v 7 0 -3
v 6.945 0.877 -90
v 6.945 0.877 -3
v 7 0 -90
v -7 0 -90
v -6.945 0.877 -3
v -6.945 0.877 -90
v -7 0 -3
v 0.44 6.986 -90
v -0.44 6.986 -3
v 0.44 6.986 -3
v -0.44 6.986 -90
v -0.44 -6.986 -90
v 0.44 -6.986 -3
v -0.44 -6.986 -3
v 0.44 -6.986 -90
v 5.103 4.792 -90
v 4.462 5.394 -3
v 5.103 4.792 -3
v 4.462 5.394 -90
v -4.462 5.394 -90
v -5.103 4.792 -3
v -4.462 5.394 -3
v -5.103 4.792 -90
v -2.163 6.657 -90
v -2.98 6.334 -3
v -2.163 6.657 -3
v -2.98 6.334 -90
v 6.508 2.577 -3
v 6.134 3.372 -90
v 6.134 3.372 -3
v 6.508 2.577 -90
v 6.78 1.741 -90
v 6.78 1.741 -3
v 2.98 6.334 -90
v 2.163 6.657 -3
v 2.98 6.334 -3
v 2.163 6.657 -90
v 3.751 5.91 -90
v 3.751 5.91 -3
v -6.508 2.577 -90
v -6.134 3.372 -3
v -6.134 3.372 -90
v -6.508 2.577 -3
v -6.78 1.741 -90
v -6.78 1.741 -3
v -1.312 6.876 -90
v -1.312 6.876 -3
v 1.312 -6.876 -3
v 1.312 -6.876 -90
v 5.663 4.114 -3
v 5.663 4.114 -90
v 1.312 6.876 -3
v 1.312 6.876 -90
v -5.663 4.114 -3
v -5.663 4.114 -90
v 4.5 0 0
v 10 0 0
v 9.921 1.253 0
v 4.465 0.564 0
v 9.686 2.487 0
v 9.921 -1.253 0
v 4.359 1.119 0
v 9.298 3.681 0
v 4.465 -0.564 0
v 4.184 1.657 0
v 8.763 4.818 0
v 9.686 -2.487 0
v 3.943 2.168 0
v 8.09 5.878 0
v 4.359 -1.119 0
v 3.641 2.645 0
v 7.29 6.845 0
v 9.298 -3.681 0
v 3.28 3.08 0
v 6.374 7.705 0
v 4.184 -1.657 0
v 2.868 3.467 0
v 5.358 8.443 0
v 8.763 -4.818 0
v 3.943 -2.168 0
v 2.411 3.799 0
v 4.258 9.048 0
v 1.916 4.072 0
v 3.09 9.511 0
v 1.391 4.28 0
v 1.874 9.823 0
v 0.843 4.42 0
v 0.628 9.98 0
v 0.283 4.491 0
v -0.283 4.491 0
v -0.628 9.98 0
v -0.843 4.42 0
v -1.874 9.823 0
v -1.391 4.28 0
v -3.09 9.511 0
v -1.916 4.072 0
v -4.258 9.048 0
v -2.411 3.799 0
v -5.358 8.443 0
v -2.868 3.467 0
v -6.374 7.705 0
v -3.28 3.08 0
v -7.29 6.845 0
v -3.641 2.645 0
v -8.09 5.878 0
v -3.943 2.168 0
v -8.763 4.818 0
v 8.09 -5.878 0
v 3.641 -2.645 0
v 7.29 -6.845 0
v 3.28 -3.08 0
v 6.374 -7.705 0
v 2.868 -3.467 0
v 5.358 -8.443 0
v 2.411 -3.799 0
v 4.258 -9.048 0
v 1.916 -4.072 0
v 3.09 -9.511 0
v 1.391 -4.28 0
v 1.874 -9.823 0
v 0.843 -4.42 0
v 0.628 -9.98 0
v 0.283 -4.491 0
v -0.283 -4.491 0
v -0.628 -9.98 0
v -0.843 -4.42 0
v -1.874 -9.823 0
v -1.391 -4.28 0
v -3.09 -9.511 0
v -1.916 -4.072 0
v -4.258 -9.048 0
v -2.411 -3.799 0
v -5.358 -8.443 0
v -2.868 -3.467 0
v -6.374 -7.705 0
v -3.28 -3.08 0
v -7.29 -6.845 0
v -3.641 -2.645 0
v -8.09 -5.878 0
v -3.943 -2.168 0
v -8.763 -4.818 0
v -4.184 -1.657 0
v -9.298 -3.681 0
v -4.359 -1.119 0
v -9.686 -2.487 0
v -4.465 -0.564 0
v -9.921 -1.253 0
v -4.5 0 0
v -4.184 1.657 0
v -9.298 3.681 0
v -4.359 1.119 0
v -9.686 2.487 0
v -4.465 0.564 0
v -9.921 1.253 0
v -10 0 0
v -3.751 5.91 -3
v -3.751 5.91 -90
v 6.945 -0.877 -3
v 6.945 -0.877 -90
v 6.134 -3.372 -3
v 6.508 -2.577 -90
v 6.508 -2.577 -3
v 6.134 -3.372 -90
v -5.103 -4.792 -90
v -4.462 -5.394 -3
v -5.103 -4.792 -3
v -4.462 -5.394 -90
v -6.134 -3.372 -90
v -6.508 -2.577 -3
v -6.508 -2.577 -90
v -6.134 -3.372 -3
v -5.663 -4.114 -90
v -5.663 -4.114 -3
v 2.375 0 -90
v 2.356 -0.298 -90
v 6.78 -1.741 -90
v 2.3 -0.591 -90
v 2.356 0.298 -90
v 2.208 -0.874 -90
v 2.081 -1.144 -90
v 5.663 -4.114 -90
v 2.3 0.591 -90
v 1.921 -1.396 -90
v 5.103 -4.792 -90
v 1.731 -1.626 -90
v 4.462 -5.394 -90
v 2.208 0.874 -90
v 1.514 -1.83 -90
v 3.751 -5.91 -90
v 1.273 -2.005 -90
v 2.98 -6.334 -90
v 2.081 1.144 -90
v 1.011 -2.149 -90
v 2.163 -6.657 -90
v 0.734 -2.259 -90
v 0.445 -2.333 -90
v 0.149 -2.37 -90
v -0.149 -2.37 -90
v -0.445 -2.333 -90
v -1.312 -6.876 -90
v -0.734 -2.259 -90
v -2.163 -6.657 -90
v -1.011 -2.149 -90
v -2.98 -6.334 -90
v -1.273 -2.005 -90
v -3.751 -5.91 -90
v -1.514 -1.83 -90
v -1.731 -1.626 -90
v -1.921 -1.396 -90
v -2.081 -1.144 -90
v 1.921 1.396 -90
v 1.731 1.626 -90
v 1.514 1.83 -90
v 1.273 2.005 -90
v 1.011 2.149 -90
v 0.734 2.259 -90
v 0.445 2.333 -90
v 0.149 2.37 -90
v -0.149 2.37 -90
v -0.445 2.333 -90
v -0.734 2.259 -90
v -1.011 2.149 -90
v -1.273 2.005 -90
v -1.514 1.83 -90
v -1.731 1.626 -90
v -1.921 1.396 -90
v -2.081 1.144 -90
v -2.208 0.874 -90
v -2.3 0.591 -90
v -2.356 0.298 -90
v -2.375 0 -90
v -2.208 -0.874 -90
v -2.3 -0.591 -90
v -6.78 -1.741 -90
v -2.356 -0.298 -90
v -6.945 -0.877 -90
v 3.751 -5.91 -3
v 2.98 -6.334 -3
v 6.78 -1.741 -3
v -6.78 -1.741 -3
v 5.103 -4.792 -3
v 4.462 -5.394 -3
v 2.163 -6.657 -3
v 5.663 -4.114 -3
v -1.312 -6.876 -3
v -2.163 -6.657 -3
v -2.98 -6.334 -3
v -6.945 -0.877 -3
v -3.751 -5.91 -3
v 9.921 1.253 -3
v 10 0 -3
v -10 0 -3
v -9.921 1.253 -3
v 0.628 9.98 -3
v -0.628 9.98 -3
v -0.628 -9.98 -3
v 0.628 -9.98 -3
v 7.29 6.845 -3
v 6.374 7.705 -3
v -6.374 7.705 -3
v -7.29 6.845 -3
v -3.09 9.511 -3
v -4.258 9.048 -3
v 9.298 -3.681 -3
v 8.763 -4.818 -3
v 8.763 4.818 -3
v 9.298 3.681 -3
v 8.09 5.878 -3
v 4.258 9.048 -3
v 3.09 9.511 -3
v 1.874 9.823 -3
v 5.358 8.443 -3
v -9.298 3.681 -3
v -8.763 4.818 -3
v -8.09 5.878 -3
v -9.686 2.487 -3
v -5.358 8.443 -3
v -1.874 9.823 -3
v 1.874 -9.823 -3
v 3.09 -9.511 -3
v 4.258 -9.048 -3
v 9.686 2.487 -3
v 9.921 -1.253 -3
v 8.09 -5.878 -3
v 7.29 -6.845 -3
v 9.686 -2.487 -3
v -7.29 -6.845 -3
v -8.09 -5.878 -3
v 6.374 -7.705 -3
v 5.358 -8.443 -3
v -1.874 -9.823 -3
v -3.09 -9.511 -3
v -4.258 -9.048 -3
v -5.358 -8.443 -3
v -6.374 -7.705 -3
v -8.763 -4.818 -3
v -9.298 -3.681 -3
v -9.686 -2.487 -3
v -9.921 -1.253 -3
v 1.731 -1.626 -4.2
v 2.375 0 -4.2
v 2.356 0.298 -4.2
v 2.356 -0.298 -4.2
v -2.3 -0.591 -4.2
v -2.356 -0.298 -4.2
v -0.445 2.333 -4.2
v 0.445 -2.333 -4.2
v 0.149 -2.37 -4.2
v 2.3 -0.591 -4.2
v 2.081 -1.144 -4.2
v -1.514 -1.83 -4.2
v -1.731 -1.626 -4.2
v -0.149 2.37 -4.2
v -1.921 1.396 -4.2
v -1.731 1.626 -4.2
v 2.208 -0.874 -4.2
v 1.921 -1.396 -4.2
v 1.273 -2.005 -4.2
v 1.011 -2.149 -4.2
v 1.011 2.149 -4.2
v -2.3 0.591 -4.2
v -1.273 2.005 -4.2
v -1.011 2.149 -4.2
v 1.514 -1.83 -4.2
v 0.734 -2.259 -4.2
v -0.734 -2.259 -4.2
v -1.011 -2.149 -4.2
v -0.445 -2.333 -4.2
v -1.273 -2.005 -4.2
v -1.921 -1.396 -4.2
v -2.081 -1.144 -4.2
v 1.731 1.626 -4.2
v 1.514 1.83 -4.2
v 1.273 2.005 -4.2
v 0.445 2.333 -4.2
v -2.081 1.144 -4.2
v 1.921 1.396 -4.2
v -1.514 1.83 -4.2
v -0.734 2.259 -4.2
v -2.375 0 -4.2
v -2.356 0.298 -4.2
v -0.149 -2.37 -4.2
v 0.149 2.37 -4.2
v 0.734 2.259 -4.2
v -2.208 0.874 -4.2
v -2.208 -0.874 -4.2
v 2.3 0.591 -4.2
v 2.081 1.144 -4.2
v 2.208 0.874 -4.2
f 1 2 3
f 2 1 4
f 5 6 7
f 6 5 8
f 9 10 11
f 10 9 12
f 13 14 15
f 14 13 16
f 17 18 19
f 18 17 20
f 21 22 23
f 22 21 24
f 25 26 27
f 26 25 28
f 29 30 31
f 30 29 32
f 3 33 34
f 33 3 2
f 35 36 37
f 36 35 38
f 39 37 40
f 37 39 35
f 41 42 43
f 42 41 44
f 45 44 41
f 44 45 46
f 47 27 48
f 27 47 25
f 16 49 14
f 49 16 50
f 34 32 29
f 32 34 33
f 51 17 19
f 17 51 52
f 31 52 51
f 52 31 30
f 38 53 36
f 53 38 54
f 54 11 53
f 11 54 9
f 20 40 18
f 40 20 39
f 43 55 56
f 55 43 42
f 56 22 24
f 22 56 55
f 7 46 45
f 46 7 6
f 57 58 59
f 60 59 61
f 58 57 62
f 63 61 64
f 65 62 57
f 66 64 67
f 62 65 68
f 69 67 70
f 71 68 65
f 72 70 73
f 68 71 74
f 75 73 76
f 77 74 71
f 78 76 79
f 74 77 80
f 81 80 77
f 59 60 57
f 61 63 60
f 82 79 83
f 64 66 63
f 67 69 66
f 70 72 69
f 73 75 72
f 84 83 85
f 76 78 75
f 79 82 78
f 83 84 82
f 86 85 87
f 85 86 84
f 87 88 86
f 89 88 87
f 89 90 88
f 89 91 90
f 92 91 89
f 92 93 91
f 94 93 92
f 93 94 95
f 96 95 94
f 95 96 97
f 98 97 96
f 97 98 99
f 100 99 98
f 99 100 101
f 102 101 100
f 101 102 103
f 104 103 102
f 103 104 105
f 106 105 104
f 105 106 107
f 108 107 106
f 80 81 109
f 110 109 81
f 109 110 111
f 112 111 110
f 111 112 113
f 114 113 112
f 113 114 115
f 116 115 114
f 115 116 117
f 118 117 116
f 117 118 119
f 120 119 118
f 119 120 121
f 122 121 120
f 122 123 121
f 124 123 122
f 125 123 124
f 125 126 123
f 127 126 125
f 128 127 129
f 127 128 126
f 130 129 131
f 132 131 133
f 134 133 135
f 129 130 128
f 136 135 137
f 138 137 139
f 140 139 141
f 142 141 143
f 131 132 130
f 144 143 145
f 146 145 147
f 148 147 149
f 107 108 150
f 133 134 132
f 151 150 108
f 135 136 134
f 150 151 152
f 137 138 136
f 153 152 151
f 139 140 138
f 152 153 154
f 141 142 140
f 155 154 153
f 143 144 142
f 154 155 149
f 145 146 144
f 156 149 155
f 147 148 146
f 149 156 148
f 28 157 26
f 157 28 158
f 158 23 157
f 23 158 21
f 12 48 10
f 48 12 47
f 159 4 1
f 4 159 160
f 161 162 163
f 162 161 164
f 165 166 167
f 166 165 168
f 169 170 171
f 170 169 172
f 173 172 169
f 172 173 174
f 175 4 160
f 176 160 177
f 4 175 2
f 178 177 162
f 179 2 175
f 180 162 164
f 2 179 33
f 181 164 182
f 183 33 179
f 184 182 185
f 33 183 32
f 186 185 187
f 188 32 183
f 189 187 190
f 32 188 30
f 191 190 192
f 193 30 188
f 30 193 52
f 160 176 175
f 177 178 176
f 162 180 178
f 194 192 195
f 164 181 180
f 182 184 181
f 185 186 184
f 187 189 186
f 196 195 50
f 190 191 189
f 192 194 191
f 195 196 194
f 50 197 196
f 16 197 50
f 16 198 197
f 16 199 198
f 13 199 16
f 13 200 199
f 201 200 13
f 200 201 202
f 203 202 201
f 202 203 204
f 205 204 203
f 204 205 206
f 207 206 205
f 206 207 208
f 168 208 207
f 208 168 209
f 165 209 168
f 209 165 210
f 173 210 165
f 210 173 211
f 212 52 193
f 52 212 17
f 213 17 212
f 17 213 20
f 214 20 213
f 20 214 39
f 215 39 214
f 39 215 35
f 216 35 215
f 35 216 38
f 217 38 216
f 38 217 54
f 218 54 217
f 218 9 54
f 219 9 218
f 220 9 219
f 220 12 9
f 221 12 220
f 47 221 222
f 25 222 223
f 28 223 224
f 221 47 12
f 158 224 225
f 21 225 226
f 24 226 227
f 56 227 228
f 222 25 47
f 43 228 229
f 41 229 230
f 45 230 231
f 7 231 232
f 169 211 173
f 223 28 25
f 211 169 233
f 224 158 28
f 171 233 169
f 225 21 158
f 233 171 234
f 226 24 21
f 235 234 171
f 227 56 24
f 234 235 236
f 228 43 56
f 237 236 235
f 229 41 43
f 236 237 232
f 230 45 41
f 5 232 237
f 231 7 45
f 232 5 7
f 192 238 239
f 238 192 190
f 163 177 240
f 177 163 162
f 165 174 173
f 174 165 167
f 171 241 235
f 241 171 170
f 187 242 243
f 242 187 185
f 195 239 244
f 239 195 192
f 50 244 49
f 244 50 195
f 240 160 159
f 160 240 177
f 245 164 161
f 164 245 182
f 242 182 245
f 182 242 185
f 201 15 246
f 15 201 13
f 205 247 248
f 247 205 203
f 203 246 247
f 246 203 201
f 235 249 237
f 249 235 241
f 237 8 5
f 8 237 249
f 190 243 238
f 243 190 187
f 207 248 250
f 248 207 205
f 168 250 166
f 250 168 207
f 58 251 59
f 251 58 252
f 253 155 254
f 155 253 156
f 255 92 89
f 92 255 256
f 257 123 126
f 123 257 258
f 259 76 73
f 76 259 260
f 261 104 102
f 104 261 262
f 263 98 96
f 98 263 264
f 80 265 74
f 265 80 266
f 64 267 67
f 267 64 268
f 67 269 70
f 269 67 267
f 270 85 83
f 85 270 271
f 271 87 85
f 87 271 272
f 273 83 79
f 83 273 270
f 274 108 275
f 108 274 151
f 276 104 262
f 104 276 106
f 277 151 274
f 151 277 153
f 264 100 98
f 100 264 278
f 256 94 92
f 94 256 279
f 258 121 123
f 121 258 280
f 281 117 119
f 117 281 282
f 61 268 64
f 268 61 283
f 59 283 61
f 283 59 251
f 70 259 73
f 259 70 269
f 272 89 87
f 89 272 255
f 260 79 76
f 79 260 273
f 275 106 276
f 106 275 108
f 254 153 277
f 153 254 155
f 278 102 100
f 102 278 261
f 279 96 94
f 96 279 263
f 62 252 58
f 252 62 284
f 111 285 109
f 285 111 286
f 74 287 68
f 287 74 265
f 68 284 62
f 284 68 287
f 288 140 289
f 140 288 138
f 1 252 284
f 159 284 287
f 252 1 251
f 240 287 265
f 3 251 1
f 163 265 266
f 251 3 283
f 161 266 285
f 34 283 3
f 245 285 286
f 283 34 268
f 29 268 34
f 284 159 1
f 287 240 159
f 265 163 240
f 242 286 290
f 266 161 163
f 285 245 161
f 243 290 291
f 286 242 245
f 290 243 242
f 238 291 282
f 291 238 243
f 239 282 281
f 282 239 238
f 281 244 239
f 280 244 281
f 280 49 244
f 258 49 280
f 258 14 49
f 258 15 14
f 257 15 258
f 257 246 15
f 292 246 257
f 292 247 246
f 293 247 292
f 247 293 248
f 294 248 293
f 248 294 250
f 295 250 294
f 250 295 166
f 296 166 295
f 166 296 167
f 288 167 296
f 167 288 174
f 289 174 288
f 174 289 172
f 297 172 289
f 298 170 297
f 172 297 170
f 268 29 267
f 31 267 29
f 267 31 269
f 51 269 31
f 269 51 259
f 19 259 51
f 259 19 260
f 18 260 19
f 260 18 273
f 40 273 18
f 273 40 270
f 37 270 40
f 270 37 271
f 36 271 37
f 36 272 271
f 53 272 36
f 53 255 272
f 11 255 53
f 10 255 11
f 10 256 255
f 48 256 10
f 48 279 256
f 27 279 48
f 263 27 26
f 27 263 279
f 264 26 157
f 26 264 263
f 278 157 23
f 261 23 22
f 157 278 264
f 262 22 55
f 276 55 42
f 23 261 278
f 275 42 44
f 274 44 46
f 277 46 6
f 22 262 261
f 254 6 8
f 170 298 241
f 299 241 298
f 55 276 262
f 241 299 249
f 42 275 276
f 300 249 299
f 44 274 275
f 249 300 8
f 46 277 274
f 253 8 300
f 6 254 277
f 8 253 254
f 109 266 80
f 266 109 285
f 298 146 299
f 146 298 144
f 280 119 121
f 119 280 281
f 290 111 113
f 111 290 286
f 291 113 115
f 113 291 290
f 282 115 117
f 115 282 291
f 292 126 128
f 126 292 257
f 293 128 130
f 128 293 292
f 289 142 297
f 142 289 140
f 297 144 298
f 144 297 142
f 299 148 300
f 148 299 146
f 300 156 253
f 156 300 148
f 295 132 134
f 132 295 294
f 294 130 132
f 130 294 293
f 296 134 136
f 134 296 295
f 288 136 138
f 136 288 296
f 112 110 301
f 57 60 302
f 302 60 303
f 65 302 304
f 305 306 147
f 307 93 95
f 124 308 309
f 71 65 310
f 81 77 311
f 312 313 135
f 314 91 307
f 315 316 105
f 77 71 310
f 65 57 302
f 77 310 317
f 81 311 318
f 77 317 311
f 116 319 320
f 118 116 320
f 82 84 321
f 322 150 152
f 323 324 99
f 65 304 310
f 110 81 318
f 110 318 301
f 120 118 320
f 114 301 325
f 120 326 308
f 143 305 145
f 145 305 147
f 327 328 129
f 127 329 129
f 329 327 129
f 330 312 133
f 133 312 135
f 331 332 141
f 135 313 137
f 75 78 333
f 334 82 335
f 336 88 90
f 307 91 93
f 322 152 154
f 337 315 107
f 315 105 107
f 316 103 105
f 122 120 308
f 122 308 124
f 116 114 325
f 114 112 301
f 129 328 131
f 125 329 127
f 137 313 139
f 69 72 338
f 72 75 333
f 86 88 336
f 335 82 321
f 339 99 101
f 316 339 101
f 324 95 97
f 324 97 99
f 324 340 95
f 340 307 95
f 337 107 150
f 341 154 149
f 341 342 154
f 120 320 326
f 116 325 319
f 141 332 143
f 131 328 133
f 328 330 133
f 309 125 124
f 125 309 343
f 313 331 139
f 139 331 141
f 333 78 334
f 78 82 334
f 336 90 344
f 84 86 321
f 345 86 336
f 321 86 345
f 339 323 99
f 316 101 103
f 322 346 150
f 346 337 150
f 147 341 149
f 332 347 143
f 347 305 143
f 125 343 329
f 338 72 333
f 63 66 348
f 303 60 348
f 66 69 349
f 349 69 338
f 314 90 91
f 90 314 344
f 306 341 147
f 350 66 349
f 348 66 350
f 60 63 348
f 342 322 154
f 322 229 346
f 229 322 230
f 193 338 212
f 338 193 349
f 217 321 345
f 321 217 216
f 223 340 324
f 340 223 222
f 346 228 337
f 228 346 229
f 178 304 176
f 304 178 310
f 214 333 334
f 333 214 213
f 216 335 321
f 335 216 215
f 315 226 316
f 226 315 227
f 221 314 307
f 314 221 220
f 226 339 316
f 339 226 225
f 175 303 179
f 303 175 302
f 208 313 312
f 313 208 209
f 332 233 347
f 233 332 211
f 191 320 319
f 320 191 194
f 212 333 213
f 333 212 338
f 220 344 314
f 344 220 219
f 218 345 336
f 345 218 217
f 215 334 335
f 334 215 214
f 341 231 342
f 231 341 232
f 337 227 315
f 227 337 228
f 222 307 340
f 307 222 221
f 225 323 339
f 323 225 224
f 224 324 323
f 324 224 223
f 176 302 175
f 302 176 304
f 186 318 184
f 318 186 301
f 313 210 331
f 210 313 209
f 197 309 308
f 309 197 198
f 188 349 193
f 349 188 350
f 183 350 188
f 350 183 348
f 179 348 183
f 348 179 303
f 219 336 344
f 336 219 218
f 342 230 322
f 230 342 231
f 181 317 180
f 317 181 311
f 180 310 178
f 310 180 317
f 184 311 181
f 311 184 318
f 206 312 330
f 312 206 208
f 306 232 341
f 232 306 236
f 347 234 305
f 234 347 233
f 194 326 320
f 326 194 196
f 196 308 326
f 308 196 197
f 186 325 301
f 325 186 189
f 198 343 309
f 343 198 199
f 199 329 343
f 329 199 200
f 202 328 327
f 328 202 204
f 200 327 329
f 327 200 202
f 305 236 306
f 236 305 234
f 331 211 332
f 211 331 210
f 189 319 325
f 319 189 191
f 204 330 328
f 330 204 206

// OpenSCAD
$fn = 50;


difference() {
	union() {
		translate(v = [0, 0, -90.0000000000]) {
			cylinder(h = 90, r = 7.0000000000);
		}
		translate(v = [0, 0, -3.0000000000]) {
			cylinder(h = 3, r = 10.0000000000);
		}
	}
	union() {
		translate(v = [0, 0, 0]) {
			rotate(a = [0, 0, 0]) {
				difference() {
					union() {
						#translate(v = [0, 0, -90.0000000000]) {
							cylinder(h = 90, r = 2.2500000000);
						}
						#translate(v = [0, 0, -4.2000000000]) {
							cylinder(h = 4.2000000000, r1 = 2.3750000000, r2 = 4.5000000000);
						}
						#translate(v = [0, 0, -90.0000000000]) {
							cylinder(h = 90, r = 2.3750000000);
						}
						#translate(v = [0, 0, -90.0000000000]) {
							cylinder(h = 90, r = 2.2500000000);
						}
					}
					union();
				}
			}
		}
	}
}
